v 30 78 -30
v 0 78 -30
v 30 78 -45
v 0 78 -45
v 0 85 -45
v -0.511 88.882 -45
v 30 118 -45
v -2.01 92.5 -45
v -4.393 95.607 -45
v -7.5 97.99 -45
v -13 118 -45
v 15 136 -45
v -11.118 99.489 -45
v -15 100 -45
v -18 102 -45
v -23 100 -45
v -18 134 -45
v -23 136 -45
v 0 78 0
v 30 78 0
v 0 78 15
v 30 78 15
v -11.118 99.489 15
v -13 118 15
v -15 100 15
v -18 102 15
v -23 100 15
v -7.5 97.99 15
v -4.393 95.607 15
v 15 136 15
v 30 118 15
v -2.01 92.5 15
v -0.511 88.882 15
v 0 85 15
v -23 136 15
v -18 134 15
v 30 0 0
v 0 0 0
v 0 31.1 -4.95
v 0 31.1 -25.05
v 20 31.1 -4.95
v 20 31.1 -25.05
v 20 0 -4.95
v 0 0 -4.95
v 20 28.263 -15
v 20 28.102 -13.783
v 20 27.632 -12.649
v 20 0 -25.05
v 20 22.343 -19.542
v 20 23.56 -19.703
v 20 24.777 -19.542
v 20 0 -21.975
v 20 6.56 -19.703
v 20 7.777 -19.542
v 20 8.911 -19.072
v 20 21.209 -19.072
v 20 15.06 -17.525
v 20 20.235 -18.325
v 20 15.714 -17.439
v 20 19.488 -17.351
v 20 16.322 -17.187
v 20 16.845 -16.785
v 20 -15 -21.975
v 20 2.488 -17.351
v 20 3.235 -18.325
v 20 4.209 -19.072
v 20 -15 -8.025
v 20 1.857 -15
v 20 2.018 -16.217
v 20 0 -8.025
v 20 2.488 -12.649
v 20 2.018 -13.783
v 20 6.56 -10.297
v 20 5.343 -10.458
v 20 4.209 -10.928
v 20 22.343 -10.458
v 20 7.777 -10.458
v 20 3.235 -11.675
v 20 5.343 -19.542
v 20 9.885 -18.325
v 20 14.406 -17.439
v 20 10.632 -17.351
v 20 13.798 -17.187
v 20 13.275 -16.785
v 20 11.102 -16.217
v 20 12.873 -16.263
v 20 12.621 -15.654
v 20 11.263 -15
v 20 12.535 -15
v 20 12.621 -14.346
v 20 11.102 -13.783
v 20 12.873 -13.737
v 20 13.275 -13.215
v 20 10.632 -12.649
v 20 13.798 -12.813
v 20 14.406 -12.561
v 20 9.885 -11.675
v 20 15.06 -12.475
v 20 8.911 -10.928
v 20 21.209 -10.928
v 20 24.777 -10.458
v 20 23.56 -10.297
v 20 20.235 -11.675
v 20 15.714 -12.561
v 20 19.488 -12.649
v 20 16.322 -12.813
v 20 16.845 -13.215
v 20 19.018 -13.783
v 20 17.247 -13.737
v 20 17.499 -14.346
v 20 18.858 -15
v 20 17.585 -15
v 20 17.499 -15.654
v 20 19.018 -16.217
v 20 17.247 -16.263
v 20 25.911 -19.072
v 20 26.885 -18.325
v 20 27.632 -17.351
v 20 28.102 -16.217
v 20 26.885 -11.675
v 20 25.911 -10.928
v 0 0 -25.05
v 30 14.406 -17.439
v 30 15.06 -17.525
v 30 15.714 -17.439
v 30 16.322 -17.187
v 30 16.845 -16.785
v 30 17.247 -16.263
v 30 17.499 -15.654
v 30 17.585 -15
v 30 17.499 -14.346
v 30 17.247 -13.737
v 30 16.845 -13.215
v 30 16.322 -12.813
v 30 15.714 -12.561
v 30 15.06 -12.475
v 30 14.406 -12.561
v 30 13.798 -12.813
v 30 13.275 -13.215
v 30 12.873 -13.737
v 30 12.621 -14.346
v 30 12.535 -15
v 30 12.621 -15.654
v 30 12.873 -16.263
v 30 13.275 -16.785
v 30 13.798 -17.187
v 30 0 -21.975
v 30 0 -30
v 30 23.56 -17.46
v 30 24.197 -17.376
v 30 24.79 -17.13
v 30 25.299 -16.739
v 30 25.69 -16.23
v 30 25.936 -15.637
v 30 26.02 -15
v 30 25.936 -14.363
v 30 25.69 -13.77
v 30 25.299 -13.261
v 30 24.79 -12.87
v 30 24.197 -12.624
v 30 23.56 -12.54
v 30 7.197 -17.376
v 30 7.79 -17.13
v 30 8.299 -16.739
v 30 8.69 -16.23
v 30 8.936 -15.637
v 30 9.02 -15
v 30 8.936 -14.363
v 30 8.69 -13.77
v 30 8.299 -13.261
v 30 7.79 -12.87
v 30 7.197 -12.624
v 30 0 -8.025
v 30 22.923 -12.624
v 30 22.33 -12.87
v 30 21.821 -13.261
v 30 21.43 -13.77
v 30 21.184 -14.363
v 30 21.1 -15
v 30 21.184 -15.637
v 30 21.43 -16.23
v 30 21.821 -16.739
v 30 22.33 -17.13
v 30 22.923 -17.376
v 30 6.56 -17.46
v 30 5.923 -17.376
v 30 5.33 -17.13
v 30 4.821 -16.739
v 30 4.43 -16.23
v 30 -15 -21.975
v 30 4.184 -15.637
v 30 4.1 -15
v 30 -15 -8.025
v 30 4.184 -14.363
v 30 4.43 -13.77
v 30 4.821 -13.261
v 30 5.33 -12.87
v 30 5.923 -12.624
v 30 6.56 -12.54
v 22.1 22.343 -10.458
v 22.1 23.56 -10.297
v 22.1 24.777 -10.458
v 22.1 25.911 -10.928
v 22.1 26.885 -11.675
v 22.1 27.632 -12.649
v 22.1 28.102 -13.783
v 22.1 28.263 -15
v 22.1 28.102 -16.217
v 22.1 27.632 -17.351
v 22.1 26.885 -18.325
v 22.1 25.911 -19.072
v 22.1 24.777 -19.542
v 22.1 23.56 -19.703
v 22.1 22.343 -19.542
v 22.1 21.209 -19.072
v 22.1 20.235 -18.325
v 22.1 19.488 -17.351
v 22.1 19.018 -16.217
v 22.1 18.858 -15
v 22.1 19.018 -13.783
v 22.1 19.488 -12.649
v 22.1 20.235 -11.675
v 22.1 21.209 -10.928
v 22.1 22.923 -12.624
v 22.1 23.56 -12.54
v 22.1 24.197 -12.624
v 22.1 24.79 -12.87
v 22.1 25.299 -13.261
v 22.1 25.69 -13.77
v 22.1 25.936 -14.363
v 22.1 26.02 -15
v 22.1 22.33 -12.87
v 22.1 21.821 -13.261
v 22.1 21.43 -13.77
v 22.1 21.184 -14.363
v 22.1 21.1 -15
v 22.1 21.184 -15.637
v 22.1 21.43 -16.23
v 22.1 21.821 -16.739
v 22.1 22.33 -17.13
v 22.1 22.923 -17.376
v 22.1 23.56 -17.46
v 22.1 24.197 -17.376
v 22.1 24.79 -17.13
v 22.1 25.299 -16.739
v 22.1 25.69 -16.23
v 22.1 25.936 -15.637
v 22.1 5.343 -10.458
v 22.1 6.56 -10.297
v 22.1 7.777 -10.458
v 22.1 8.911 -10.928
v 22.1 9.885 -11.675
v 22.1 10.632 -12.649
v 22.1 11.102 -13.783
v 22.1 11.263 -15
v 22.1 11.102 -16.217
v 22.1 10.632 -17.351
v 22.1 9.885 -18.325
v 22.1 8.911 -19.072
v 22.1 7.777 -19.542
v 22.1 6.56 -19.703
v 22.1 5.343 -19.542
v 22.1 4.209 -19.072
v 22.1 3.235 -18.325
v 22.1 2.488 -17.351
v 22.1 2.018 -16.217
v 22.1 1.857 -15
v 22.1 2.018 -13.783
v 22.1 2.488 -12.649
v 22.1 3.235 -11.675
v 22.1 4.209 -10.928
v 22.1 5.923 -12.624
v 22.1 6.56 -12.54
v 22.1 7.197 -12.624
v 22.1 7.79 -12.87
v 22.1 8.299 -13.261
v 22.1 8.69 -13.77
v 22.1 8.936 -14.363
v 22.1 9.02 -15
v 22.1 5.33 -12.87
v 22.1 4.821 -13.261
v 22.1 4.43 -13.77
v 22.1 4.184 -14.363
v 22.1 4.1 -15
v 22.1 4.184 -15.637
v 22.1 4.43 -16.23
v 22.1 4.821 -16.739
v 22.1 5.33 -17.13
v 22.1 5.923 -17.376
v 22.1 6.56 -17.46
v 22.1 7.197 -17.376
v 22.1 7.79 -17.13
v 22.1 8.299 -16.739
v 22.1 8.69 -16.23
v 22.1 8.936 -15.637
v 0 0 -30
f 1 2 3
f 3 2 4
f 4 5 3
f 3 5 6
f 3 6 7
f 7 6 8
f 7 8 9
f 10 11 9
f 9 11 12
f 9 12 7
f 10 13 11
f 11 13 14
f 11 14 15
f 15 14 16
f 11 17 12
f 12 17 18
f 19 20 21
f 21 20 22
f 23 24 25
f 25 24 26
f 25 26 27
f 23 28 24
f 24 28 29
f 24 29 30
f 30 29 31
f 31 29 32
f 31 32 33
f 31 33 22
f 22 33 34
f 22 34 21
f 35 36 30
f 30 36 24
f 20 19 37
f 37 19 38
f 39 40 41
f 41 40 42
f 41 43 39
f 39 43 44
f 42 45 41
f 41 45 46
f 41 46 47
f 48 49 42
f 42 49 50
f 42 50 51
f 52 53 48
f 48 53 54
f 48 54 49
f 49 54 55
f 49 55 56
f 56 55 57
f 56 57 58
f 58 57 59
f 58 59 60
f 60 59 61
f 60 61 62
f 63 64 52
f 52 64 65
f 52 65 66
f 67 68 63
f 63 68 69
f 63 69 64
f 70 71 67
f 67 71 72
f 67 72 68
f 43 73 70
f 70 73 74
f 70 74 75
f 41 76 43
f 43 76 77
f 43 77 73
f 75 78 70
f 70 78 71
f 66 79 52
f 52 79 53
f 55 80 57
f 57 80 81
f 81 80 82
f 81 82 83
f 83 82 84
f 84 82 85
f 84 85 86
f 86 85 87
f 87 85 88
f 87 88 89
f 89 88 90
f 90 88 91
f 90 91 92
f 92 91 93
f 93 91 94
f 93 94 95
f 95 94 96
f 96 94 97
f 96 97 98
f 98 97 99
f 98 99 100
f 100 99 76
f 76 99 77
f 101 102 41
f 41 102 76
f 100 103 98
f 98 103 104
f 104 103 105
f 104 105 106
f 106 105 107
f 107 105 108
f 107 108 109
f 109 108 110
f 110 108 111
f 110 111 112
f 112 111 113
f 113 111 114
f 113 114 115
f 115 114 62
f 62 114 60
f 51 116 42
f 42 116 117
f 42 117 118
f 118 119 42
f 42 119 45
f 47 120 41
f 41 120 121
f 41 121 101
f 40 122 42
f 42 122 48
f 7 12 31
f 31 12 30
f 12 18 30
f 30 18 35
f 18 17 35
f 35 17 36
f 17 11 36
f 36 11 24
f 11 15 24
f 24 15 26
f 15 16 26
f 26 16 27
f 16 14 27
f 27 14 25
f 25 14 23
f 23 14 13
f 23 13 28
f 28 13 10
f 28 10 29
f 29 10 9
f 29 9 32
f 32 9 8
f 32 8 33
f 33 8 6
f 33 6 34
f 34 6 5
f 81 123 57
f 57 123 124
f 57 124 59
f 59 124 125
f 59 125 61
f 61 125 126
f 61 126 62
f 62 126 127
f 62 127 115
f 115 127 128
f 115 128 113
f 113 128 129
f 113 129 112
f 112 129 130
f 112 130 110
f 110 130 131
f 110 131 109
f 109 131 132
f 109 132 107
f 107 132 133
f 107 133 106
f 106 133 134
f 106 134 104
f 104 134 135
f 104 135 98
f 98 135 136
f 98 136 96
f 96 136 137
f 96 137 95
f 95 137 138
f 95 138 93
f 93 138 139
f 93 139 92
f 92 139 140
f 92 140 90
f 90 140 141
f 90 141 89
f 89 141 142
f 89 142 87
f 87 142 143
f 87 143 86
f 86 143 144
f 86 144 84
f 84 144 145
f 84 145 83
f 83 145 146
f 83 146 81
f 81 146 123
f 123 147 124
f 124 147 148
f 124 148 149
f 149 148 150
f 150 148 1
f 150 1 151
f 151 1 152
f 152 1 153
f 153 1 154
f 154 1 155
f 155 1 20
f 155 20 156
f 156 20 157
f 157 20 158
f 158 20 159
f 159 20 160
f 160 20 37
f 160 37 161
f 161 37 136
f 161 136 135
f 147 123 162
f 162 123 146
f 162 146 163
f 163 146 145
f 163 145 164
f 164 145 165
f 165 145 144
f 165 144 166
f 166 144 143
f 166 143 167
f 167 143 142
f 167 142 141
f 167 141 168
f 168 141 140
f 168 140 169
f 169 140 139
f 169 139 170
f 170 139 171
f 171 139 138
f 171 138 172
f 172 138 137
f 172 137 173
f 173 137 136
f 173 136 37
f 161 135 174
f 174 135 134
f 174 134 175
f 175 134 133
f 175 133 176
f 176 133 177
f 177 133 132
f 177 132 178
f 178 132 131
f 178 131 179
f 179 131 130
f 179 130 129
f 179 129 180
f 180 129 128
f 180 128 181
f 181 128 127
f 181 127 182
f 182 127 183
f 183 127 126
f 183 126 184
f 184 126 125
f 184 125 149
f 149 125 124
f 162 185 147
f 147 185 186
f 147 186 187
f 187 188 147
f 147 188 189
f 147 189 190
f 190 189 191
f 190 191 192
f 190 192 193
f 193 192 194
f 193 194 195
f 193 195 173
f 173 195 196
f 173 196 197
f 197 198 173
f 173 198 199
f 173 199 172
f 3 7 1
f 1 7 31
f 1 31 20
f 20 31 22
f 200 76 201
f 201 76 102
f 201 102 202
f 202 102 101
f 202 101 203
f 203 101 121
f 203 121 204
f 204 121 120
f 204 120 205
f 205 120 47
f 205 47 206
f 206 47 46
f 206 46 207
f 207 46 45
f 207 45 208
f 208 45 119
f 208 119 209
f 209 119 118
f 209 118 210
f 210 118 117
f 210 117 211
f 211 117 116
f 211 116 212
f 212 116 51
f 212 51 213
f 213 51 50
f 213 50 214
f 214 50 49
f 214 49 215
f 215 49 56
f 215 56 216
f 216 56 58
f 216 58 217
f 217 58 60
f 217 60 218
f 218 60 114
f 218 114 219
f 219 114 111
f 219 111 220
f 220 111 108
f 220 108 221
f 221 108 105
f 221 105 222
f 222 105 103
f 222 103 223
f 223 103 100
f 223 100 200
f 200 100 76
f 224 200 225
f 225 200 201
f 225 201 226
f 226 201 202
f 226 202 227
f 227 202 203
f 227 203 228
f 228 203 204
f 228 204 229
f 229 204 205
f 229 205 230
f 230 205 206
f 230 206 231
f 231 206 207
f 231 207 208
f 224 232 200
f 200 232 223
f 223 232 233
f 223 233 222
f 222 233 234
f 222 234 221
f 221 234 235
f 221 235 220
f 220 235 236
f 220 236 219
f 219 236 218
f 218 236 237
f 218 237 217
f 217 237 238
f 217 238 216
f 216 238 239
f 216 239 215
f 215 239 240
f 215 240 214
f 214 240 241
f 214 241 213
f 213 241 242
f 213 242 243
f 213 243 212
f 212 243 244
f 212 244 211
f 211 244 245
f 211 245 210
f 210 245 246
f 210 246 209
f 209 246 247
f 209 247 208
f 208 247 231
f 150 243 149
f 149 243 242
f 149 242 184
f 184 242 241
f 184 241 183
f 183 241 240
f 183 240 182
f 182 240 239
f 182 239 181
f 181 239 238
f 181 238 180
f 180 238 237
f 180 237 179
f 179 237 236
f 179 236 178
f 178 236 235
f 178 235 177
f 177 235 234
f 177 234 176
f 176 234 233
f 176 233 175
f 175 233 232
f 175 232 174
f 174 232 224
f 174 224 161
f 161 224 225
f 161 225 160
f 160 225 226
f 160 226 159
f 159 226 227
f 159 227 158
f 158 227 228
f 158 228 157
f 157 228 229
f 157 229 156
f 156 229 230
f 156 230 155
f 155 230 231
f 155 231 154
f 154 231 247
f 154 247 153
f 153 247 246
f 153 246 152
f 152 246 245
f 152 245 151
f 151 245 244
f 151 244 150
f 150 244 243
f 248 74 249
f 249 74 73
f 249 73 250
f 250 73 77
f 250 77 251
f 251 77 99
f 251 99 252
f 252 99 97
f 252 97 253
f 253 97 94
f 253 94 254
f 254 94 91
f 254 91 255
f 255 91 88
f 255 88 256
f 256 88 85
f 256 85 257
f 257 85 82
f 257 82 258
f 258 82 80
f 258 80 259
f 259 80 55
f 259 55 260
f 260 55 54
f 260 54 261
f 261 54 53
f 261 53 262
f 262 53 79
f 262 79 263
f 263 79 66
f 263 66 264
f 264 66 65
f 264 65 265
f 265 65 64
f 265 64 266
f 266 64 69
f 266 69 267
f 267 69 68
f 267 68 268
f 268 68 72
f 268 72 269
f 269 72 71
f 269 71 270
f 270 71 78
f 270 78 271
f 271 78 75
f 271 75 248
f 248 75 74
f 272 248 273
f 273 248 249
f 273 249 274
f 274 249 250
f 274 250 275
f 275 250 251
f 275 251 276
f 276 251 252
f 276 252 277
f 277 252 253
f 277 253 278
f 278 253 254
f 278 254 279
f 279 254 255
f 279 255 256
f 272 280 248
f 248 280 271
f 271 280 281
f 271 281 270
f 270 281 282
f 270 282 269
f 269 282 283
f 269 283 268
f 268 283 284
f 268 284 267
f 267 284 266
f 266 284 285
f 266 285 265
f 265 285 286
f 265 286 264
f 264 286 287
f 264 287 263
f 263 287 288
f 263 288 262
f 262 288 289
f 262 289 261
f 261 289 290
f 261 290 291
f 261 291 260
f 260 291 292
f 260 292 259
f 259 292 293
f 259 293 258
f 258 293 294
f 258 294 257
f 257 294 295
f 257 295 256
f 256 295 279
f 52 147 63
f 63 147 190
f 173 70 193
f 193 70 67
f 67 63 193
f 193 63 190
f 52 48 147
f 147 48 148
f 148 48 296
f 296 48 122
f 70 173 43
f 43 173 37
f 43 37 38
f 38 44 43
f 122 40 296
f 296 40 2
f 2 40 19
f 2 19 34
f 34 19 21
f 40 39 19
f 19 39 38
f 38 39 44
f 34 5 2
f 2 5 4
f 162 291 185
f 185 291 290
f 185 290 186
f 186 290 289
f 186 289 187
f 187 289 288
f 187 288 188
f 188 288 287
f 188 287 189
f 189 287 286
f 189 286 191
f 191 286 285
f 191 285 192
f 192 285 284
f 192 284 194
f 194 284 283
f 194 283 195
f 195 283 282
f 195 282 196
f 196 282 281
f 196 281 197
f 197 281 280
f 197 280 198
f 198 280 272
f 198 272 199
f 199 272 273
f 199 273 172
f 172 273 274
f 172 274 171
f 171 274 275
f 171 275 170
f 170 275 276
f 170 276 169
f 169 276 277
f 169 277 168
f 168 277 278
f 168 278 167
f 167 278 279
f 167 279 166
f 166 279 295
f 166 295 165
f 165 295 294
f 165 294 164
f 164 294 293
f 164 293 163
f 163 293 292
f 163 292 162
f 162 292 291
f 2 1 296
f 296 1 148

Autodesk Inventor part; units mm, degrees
ref_plane "YZ Plane" through (0, 0, 0) normal (1, 0, 0) x (0, 1, 0)
ref_plane "XZ Plane" through (0, 0, 0) normal (0, 1, 0) x (-1, 0, 0)
sketch "Sketch1" plane through (0, 0, 0) normal (0, 0, 1) x (1, 0, 0)
  line L0 (0, 0) -> (25, 0)
  line L1 (25, 0) -> (25, 40)
  line L2 (25, 40) -> (0, 40)
  line L3 (0, 40) -> (0, 0)
  dimension "d1" = 25
  dimension "d2" = 40
  dimension "d3" = 25
extrude "Extrusion1" add sketch "Sketch1" against normal blind 30
sketch "Sketch2" plane through (25, 0, 0) normal (1, 0, 0) x (0, 0, -1)
  line L0 (0, 0) -> (30, 0) projected
  circle A0 centre (15, 6.56) radius 2.46
extrude "Extrusion2" cut sketch "Sketch2" against normal blind 30
sketch "Sketch3" plane through (0, 0, 0) normal (-1, 0, 0) x (0, 0, 1)
  line L0 (0, 0) -> (-30, 0) projected
  line L1 (-25.05, 0) -> (-4.95, 0)
  line L2 (-4.95, 0) -> (-4.95, 33.12)
  line L3 (-4.95, 33.12) -> (-25.05, 33.12)
  line L4 (-25.05, 33.12) -> (-25.05, 0)
  dimension "d11" = 20.1
extrude "Extrusion3" cut sketch "Sketch3" against normal blind 20
sketch "Sketch4" plane through (0, 0, 0) normal (0, -1, 0) x (1, 0, 0)
  line L0 (20, -4.95) -> (20, -25.05) projected
  line L1 (20, -15) -> (25, -15)
  line L2 (25, 0) -> (25, -30) projected
  line L3 (20, -8.025) -> (25, -8.025)
  line L4 (25, -8.025) -> (25, -21.975)
  line L5 (25, -21.975) -> (20, -21.975)
  line L6 (20, -21.975) -> (20, -8.025)
  line L7 (20, -8.025) -> (25, -21.975) construction
  line L8 (25, -8.025) -> (20, -21.975) construction
  line L9 (25, -12.54) -> (25, -17.46) projected
  point P0 (0, 0)
  point P1 (22.5, -15)
  dimension "d14" = 13.95
extrude "Extrusion4" add sketch "Sketch4" along normal blind 15
sketch "Sketch5" plane through (20, 0, 0) normal (-1, 0, 0) x (0, 0, 1)
  circle A0 centre (-15, 6.56) radius 2.46 projected
  circle A1 centre (-15, 6.56) radius 4.7025
  circle A2 centre (-15, 6.56) radius 2.46 projected
  circle A3 centre (-15, 6.56) radius 2.46
  point P0 (0, 0)
  dimension "d17" = 9.405
extrude "Extrusion5" cut sketch "Sketch5" against normal blind 2.1
sketch "Sketch6" plane through (25, 0, 0) normal (1, 0, 0) x (0, 0, -1)
  circle A0 centre (15, 6.56) radius 4.7025 projected
  line L0 (15, 6.56) -> (15, 23.56)
  circle A1 centre (15, 23.56) radius 2.46
  point P0 (0, 0)
  dimension "d20" = 17
  dimension "d21" = 4.92
extrude "Extrusion6" cut sketch "Sketch6" against normal blind 10 contours A1
sketch "Sketch7" plane through (20, 0, 0) normal (-1, 0, 0) x (0, 0, 1)
  circle A0 centre (-15, 23.56) radius 2.46 projected
  circle A1 centre (-15, 23.56) radius 4.7025
  point P0 (0, 0)
  dimension "d24" = 9.405
extrude "Extrusion7" cut sketch "Sketch7" against normal blind 2.1
sketch "Sketch9" plane through (25, 0, 0) normal (1, 0, 0) x (0, 0, -1)
  circle A0 centre (15, 6.56) radius 2.46 projected
  circle A1 centre (15, 6.56) radius 2.46
  circle A2 centre (15, 23.56) radius 2.46 projected
  circle A3 centre (15, 23.56) radius 2.46
  line L0 (30, 40) -> (30, 0) projected
  line L1 (30, 0) -> (30, 40)
  line L2 (30, 40) -> (0, 40)
  line L3 (0, 40) -> (0, 0)
  line L4 (0, 0) -> (8.025, 0) projected
  line L5 (21.975, 0) -> (21.975, -15)
  line L6 (21.975, -15) -> (8.025, -15)
  line L7 (8.025, -15) -> (8.025, 0)
  line L8 (0, 0) -> (8.025, 0)
  line L9 (21.975, 0) -> (30, 0)
extrude "Extrusion8" add sketch "Sketch9" along normal blind 5
sketch "Sketch10" plane through (0, 40, 0) normal (0, 1, 0) x (1, 0, 0)
  line L0 (0, 30) -> (30, 30) projected
  line L1 (30, 0) -> (0, 0) projected
  line L2 (0, 30) -> (30, 30)
  line L3 (30, 30) -> (30, 0)
  line L4 (30, 0) -> (0, 0)
  line L5 (0, 0) -> (0, 30)
extrude "Extrusion9" add sketch "Sketch10" along normal blind 30
sketch "Sketch12" plane through (30, 0, 0) normal (1, 0, 0) x (0, 0, -1)
  circle A0 centre (15, 6.56) radius 2.46 projected
  line L0 (15, 6.56) -> (15, 15.06)
  circle A1 centre (15, 15.06) radius 2.525
  point P0 (0, 0)
  dimension "d31" = 8.5
  dimension "d33" = 5.05
extrude "Extrusion10" cut sketch "Sketch12" against normal blind 30 contours A1
sketch "Sketch14" plane through (0, 0, 0) normal (0, 0, 1) x (1, 0, 0)
  line L0 (30, 70) -> (0, 70) projected
  line L1 (0, 70) -> (0, 85)
  line L2 (-15, 100) -> (-23, 100)
  line L3 (30, 0) -> (30, 70) projected
  line L4 (30, 118) -> (30, 70)
  arc A0 (0, 85) -> (-15, 100) centre (-15, 85) ccw
  line L5 (30, 105) -> (30, 100)
  line L6 (-18, 134) -> (-23, 136)
  line L7 (-18, 102) -> (-23, 100)
  line L8 (-18, 102) -> (-13, 118)
  line L9 (-13, 118) -> (-18, 134)
  line L10 (15, 136) -> (30, 118)
  line L11 (-23, 136) -> (15, 136)
  point P0 (0, 0)
  point P1 (0, 100)
  dimension "d47" = 30
  dimension "d54" = 15
extrude "Extrusion12" add sketch "Sketch14" against normal blind 30
sketch "Sketch15" plane through (0, 0, -25.05) normal (-1, 0, 0) x (0, 0, 1)
  line L0 (0, 33.12) -> (20.1, 33.12) projected
  line L1 (20.1, 33.12) -> (20.1, 0) projected
  line L2 (0, 33.12) -> (20.1, 33.12)
  line L3 (20.1, 33.12) -> (20.1, 31.1)
  line L4 (20.1, 31.1) -> (0, 31.1)
  line L5 (0, 31.1) -> (0, 33.12)
  point P0 (25.05, 0)
  dimension "d57" = 2.02
extrude "Extrusion13" add sketch "Sketch15" against normal blind 20
sketch "Sketch22" plane through (0, 0, 0) normal (0, 0, 1) x (1, 0, 0)
  line L0 (-15, 100) -> (-23, 100) projected
  line L1 (-15, 100) -> (-23, 100)
  line L2 (-23, 100) -> (-18, 102) projected
  line L3 (-23, 100) -> (-18, 102)
  line L4 (-18, 102) -> (-13, 118) projected
  line L5 (-18, 102) -> (-13, 118)
  line L6 (-13, 118) -> (-18, 134) projected
  line L7 (-13, 118) -> (-18, 134)
  line L8 (-18, 134) -> (-23, 136) projected
  line L9 (-18, 134) -> (-23, 136)
  line L10 (-23, 136) -> (15, 136) projected
  line L11 (-23, 136) -> (15, 136)
  line L12 (15, 136) -> (30, 118) projected
  line L13 (15, 136) -> (30, 118)
  line L14 (30, 118) -> (30, 78)
  line L15 (30, 0) -> (30, 118) projected
  line L16 (30, 78) -> (0, 78)
  arc A0 (0, 85) -> (-15, 100) centre (-15, 85) ccw projected
  line L17 (0, 78) -> (0, 85)
  arc A1 (0, 85) -> (-15, 100) centre (-15, 85) ccw
  point P0 (0, 0)
  dimension "d82" = 40
extrude "Extrusion14" add sketch "Sketch22" along normal blind 15
ref_plane "Work Plane1" through (0, 0, -15) normal (0, 0, 1) x (1, 0, 0)
mirror "Mirror1" about plane through (0, 0, -15) normal (0, 0, 1) of "Extrusion14"
properties part number "rec_a_32mm_x_60mm"
